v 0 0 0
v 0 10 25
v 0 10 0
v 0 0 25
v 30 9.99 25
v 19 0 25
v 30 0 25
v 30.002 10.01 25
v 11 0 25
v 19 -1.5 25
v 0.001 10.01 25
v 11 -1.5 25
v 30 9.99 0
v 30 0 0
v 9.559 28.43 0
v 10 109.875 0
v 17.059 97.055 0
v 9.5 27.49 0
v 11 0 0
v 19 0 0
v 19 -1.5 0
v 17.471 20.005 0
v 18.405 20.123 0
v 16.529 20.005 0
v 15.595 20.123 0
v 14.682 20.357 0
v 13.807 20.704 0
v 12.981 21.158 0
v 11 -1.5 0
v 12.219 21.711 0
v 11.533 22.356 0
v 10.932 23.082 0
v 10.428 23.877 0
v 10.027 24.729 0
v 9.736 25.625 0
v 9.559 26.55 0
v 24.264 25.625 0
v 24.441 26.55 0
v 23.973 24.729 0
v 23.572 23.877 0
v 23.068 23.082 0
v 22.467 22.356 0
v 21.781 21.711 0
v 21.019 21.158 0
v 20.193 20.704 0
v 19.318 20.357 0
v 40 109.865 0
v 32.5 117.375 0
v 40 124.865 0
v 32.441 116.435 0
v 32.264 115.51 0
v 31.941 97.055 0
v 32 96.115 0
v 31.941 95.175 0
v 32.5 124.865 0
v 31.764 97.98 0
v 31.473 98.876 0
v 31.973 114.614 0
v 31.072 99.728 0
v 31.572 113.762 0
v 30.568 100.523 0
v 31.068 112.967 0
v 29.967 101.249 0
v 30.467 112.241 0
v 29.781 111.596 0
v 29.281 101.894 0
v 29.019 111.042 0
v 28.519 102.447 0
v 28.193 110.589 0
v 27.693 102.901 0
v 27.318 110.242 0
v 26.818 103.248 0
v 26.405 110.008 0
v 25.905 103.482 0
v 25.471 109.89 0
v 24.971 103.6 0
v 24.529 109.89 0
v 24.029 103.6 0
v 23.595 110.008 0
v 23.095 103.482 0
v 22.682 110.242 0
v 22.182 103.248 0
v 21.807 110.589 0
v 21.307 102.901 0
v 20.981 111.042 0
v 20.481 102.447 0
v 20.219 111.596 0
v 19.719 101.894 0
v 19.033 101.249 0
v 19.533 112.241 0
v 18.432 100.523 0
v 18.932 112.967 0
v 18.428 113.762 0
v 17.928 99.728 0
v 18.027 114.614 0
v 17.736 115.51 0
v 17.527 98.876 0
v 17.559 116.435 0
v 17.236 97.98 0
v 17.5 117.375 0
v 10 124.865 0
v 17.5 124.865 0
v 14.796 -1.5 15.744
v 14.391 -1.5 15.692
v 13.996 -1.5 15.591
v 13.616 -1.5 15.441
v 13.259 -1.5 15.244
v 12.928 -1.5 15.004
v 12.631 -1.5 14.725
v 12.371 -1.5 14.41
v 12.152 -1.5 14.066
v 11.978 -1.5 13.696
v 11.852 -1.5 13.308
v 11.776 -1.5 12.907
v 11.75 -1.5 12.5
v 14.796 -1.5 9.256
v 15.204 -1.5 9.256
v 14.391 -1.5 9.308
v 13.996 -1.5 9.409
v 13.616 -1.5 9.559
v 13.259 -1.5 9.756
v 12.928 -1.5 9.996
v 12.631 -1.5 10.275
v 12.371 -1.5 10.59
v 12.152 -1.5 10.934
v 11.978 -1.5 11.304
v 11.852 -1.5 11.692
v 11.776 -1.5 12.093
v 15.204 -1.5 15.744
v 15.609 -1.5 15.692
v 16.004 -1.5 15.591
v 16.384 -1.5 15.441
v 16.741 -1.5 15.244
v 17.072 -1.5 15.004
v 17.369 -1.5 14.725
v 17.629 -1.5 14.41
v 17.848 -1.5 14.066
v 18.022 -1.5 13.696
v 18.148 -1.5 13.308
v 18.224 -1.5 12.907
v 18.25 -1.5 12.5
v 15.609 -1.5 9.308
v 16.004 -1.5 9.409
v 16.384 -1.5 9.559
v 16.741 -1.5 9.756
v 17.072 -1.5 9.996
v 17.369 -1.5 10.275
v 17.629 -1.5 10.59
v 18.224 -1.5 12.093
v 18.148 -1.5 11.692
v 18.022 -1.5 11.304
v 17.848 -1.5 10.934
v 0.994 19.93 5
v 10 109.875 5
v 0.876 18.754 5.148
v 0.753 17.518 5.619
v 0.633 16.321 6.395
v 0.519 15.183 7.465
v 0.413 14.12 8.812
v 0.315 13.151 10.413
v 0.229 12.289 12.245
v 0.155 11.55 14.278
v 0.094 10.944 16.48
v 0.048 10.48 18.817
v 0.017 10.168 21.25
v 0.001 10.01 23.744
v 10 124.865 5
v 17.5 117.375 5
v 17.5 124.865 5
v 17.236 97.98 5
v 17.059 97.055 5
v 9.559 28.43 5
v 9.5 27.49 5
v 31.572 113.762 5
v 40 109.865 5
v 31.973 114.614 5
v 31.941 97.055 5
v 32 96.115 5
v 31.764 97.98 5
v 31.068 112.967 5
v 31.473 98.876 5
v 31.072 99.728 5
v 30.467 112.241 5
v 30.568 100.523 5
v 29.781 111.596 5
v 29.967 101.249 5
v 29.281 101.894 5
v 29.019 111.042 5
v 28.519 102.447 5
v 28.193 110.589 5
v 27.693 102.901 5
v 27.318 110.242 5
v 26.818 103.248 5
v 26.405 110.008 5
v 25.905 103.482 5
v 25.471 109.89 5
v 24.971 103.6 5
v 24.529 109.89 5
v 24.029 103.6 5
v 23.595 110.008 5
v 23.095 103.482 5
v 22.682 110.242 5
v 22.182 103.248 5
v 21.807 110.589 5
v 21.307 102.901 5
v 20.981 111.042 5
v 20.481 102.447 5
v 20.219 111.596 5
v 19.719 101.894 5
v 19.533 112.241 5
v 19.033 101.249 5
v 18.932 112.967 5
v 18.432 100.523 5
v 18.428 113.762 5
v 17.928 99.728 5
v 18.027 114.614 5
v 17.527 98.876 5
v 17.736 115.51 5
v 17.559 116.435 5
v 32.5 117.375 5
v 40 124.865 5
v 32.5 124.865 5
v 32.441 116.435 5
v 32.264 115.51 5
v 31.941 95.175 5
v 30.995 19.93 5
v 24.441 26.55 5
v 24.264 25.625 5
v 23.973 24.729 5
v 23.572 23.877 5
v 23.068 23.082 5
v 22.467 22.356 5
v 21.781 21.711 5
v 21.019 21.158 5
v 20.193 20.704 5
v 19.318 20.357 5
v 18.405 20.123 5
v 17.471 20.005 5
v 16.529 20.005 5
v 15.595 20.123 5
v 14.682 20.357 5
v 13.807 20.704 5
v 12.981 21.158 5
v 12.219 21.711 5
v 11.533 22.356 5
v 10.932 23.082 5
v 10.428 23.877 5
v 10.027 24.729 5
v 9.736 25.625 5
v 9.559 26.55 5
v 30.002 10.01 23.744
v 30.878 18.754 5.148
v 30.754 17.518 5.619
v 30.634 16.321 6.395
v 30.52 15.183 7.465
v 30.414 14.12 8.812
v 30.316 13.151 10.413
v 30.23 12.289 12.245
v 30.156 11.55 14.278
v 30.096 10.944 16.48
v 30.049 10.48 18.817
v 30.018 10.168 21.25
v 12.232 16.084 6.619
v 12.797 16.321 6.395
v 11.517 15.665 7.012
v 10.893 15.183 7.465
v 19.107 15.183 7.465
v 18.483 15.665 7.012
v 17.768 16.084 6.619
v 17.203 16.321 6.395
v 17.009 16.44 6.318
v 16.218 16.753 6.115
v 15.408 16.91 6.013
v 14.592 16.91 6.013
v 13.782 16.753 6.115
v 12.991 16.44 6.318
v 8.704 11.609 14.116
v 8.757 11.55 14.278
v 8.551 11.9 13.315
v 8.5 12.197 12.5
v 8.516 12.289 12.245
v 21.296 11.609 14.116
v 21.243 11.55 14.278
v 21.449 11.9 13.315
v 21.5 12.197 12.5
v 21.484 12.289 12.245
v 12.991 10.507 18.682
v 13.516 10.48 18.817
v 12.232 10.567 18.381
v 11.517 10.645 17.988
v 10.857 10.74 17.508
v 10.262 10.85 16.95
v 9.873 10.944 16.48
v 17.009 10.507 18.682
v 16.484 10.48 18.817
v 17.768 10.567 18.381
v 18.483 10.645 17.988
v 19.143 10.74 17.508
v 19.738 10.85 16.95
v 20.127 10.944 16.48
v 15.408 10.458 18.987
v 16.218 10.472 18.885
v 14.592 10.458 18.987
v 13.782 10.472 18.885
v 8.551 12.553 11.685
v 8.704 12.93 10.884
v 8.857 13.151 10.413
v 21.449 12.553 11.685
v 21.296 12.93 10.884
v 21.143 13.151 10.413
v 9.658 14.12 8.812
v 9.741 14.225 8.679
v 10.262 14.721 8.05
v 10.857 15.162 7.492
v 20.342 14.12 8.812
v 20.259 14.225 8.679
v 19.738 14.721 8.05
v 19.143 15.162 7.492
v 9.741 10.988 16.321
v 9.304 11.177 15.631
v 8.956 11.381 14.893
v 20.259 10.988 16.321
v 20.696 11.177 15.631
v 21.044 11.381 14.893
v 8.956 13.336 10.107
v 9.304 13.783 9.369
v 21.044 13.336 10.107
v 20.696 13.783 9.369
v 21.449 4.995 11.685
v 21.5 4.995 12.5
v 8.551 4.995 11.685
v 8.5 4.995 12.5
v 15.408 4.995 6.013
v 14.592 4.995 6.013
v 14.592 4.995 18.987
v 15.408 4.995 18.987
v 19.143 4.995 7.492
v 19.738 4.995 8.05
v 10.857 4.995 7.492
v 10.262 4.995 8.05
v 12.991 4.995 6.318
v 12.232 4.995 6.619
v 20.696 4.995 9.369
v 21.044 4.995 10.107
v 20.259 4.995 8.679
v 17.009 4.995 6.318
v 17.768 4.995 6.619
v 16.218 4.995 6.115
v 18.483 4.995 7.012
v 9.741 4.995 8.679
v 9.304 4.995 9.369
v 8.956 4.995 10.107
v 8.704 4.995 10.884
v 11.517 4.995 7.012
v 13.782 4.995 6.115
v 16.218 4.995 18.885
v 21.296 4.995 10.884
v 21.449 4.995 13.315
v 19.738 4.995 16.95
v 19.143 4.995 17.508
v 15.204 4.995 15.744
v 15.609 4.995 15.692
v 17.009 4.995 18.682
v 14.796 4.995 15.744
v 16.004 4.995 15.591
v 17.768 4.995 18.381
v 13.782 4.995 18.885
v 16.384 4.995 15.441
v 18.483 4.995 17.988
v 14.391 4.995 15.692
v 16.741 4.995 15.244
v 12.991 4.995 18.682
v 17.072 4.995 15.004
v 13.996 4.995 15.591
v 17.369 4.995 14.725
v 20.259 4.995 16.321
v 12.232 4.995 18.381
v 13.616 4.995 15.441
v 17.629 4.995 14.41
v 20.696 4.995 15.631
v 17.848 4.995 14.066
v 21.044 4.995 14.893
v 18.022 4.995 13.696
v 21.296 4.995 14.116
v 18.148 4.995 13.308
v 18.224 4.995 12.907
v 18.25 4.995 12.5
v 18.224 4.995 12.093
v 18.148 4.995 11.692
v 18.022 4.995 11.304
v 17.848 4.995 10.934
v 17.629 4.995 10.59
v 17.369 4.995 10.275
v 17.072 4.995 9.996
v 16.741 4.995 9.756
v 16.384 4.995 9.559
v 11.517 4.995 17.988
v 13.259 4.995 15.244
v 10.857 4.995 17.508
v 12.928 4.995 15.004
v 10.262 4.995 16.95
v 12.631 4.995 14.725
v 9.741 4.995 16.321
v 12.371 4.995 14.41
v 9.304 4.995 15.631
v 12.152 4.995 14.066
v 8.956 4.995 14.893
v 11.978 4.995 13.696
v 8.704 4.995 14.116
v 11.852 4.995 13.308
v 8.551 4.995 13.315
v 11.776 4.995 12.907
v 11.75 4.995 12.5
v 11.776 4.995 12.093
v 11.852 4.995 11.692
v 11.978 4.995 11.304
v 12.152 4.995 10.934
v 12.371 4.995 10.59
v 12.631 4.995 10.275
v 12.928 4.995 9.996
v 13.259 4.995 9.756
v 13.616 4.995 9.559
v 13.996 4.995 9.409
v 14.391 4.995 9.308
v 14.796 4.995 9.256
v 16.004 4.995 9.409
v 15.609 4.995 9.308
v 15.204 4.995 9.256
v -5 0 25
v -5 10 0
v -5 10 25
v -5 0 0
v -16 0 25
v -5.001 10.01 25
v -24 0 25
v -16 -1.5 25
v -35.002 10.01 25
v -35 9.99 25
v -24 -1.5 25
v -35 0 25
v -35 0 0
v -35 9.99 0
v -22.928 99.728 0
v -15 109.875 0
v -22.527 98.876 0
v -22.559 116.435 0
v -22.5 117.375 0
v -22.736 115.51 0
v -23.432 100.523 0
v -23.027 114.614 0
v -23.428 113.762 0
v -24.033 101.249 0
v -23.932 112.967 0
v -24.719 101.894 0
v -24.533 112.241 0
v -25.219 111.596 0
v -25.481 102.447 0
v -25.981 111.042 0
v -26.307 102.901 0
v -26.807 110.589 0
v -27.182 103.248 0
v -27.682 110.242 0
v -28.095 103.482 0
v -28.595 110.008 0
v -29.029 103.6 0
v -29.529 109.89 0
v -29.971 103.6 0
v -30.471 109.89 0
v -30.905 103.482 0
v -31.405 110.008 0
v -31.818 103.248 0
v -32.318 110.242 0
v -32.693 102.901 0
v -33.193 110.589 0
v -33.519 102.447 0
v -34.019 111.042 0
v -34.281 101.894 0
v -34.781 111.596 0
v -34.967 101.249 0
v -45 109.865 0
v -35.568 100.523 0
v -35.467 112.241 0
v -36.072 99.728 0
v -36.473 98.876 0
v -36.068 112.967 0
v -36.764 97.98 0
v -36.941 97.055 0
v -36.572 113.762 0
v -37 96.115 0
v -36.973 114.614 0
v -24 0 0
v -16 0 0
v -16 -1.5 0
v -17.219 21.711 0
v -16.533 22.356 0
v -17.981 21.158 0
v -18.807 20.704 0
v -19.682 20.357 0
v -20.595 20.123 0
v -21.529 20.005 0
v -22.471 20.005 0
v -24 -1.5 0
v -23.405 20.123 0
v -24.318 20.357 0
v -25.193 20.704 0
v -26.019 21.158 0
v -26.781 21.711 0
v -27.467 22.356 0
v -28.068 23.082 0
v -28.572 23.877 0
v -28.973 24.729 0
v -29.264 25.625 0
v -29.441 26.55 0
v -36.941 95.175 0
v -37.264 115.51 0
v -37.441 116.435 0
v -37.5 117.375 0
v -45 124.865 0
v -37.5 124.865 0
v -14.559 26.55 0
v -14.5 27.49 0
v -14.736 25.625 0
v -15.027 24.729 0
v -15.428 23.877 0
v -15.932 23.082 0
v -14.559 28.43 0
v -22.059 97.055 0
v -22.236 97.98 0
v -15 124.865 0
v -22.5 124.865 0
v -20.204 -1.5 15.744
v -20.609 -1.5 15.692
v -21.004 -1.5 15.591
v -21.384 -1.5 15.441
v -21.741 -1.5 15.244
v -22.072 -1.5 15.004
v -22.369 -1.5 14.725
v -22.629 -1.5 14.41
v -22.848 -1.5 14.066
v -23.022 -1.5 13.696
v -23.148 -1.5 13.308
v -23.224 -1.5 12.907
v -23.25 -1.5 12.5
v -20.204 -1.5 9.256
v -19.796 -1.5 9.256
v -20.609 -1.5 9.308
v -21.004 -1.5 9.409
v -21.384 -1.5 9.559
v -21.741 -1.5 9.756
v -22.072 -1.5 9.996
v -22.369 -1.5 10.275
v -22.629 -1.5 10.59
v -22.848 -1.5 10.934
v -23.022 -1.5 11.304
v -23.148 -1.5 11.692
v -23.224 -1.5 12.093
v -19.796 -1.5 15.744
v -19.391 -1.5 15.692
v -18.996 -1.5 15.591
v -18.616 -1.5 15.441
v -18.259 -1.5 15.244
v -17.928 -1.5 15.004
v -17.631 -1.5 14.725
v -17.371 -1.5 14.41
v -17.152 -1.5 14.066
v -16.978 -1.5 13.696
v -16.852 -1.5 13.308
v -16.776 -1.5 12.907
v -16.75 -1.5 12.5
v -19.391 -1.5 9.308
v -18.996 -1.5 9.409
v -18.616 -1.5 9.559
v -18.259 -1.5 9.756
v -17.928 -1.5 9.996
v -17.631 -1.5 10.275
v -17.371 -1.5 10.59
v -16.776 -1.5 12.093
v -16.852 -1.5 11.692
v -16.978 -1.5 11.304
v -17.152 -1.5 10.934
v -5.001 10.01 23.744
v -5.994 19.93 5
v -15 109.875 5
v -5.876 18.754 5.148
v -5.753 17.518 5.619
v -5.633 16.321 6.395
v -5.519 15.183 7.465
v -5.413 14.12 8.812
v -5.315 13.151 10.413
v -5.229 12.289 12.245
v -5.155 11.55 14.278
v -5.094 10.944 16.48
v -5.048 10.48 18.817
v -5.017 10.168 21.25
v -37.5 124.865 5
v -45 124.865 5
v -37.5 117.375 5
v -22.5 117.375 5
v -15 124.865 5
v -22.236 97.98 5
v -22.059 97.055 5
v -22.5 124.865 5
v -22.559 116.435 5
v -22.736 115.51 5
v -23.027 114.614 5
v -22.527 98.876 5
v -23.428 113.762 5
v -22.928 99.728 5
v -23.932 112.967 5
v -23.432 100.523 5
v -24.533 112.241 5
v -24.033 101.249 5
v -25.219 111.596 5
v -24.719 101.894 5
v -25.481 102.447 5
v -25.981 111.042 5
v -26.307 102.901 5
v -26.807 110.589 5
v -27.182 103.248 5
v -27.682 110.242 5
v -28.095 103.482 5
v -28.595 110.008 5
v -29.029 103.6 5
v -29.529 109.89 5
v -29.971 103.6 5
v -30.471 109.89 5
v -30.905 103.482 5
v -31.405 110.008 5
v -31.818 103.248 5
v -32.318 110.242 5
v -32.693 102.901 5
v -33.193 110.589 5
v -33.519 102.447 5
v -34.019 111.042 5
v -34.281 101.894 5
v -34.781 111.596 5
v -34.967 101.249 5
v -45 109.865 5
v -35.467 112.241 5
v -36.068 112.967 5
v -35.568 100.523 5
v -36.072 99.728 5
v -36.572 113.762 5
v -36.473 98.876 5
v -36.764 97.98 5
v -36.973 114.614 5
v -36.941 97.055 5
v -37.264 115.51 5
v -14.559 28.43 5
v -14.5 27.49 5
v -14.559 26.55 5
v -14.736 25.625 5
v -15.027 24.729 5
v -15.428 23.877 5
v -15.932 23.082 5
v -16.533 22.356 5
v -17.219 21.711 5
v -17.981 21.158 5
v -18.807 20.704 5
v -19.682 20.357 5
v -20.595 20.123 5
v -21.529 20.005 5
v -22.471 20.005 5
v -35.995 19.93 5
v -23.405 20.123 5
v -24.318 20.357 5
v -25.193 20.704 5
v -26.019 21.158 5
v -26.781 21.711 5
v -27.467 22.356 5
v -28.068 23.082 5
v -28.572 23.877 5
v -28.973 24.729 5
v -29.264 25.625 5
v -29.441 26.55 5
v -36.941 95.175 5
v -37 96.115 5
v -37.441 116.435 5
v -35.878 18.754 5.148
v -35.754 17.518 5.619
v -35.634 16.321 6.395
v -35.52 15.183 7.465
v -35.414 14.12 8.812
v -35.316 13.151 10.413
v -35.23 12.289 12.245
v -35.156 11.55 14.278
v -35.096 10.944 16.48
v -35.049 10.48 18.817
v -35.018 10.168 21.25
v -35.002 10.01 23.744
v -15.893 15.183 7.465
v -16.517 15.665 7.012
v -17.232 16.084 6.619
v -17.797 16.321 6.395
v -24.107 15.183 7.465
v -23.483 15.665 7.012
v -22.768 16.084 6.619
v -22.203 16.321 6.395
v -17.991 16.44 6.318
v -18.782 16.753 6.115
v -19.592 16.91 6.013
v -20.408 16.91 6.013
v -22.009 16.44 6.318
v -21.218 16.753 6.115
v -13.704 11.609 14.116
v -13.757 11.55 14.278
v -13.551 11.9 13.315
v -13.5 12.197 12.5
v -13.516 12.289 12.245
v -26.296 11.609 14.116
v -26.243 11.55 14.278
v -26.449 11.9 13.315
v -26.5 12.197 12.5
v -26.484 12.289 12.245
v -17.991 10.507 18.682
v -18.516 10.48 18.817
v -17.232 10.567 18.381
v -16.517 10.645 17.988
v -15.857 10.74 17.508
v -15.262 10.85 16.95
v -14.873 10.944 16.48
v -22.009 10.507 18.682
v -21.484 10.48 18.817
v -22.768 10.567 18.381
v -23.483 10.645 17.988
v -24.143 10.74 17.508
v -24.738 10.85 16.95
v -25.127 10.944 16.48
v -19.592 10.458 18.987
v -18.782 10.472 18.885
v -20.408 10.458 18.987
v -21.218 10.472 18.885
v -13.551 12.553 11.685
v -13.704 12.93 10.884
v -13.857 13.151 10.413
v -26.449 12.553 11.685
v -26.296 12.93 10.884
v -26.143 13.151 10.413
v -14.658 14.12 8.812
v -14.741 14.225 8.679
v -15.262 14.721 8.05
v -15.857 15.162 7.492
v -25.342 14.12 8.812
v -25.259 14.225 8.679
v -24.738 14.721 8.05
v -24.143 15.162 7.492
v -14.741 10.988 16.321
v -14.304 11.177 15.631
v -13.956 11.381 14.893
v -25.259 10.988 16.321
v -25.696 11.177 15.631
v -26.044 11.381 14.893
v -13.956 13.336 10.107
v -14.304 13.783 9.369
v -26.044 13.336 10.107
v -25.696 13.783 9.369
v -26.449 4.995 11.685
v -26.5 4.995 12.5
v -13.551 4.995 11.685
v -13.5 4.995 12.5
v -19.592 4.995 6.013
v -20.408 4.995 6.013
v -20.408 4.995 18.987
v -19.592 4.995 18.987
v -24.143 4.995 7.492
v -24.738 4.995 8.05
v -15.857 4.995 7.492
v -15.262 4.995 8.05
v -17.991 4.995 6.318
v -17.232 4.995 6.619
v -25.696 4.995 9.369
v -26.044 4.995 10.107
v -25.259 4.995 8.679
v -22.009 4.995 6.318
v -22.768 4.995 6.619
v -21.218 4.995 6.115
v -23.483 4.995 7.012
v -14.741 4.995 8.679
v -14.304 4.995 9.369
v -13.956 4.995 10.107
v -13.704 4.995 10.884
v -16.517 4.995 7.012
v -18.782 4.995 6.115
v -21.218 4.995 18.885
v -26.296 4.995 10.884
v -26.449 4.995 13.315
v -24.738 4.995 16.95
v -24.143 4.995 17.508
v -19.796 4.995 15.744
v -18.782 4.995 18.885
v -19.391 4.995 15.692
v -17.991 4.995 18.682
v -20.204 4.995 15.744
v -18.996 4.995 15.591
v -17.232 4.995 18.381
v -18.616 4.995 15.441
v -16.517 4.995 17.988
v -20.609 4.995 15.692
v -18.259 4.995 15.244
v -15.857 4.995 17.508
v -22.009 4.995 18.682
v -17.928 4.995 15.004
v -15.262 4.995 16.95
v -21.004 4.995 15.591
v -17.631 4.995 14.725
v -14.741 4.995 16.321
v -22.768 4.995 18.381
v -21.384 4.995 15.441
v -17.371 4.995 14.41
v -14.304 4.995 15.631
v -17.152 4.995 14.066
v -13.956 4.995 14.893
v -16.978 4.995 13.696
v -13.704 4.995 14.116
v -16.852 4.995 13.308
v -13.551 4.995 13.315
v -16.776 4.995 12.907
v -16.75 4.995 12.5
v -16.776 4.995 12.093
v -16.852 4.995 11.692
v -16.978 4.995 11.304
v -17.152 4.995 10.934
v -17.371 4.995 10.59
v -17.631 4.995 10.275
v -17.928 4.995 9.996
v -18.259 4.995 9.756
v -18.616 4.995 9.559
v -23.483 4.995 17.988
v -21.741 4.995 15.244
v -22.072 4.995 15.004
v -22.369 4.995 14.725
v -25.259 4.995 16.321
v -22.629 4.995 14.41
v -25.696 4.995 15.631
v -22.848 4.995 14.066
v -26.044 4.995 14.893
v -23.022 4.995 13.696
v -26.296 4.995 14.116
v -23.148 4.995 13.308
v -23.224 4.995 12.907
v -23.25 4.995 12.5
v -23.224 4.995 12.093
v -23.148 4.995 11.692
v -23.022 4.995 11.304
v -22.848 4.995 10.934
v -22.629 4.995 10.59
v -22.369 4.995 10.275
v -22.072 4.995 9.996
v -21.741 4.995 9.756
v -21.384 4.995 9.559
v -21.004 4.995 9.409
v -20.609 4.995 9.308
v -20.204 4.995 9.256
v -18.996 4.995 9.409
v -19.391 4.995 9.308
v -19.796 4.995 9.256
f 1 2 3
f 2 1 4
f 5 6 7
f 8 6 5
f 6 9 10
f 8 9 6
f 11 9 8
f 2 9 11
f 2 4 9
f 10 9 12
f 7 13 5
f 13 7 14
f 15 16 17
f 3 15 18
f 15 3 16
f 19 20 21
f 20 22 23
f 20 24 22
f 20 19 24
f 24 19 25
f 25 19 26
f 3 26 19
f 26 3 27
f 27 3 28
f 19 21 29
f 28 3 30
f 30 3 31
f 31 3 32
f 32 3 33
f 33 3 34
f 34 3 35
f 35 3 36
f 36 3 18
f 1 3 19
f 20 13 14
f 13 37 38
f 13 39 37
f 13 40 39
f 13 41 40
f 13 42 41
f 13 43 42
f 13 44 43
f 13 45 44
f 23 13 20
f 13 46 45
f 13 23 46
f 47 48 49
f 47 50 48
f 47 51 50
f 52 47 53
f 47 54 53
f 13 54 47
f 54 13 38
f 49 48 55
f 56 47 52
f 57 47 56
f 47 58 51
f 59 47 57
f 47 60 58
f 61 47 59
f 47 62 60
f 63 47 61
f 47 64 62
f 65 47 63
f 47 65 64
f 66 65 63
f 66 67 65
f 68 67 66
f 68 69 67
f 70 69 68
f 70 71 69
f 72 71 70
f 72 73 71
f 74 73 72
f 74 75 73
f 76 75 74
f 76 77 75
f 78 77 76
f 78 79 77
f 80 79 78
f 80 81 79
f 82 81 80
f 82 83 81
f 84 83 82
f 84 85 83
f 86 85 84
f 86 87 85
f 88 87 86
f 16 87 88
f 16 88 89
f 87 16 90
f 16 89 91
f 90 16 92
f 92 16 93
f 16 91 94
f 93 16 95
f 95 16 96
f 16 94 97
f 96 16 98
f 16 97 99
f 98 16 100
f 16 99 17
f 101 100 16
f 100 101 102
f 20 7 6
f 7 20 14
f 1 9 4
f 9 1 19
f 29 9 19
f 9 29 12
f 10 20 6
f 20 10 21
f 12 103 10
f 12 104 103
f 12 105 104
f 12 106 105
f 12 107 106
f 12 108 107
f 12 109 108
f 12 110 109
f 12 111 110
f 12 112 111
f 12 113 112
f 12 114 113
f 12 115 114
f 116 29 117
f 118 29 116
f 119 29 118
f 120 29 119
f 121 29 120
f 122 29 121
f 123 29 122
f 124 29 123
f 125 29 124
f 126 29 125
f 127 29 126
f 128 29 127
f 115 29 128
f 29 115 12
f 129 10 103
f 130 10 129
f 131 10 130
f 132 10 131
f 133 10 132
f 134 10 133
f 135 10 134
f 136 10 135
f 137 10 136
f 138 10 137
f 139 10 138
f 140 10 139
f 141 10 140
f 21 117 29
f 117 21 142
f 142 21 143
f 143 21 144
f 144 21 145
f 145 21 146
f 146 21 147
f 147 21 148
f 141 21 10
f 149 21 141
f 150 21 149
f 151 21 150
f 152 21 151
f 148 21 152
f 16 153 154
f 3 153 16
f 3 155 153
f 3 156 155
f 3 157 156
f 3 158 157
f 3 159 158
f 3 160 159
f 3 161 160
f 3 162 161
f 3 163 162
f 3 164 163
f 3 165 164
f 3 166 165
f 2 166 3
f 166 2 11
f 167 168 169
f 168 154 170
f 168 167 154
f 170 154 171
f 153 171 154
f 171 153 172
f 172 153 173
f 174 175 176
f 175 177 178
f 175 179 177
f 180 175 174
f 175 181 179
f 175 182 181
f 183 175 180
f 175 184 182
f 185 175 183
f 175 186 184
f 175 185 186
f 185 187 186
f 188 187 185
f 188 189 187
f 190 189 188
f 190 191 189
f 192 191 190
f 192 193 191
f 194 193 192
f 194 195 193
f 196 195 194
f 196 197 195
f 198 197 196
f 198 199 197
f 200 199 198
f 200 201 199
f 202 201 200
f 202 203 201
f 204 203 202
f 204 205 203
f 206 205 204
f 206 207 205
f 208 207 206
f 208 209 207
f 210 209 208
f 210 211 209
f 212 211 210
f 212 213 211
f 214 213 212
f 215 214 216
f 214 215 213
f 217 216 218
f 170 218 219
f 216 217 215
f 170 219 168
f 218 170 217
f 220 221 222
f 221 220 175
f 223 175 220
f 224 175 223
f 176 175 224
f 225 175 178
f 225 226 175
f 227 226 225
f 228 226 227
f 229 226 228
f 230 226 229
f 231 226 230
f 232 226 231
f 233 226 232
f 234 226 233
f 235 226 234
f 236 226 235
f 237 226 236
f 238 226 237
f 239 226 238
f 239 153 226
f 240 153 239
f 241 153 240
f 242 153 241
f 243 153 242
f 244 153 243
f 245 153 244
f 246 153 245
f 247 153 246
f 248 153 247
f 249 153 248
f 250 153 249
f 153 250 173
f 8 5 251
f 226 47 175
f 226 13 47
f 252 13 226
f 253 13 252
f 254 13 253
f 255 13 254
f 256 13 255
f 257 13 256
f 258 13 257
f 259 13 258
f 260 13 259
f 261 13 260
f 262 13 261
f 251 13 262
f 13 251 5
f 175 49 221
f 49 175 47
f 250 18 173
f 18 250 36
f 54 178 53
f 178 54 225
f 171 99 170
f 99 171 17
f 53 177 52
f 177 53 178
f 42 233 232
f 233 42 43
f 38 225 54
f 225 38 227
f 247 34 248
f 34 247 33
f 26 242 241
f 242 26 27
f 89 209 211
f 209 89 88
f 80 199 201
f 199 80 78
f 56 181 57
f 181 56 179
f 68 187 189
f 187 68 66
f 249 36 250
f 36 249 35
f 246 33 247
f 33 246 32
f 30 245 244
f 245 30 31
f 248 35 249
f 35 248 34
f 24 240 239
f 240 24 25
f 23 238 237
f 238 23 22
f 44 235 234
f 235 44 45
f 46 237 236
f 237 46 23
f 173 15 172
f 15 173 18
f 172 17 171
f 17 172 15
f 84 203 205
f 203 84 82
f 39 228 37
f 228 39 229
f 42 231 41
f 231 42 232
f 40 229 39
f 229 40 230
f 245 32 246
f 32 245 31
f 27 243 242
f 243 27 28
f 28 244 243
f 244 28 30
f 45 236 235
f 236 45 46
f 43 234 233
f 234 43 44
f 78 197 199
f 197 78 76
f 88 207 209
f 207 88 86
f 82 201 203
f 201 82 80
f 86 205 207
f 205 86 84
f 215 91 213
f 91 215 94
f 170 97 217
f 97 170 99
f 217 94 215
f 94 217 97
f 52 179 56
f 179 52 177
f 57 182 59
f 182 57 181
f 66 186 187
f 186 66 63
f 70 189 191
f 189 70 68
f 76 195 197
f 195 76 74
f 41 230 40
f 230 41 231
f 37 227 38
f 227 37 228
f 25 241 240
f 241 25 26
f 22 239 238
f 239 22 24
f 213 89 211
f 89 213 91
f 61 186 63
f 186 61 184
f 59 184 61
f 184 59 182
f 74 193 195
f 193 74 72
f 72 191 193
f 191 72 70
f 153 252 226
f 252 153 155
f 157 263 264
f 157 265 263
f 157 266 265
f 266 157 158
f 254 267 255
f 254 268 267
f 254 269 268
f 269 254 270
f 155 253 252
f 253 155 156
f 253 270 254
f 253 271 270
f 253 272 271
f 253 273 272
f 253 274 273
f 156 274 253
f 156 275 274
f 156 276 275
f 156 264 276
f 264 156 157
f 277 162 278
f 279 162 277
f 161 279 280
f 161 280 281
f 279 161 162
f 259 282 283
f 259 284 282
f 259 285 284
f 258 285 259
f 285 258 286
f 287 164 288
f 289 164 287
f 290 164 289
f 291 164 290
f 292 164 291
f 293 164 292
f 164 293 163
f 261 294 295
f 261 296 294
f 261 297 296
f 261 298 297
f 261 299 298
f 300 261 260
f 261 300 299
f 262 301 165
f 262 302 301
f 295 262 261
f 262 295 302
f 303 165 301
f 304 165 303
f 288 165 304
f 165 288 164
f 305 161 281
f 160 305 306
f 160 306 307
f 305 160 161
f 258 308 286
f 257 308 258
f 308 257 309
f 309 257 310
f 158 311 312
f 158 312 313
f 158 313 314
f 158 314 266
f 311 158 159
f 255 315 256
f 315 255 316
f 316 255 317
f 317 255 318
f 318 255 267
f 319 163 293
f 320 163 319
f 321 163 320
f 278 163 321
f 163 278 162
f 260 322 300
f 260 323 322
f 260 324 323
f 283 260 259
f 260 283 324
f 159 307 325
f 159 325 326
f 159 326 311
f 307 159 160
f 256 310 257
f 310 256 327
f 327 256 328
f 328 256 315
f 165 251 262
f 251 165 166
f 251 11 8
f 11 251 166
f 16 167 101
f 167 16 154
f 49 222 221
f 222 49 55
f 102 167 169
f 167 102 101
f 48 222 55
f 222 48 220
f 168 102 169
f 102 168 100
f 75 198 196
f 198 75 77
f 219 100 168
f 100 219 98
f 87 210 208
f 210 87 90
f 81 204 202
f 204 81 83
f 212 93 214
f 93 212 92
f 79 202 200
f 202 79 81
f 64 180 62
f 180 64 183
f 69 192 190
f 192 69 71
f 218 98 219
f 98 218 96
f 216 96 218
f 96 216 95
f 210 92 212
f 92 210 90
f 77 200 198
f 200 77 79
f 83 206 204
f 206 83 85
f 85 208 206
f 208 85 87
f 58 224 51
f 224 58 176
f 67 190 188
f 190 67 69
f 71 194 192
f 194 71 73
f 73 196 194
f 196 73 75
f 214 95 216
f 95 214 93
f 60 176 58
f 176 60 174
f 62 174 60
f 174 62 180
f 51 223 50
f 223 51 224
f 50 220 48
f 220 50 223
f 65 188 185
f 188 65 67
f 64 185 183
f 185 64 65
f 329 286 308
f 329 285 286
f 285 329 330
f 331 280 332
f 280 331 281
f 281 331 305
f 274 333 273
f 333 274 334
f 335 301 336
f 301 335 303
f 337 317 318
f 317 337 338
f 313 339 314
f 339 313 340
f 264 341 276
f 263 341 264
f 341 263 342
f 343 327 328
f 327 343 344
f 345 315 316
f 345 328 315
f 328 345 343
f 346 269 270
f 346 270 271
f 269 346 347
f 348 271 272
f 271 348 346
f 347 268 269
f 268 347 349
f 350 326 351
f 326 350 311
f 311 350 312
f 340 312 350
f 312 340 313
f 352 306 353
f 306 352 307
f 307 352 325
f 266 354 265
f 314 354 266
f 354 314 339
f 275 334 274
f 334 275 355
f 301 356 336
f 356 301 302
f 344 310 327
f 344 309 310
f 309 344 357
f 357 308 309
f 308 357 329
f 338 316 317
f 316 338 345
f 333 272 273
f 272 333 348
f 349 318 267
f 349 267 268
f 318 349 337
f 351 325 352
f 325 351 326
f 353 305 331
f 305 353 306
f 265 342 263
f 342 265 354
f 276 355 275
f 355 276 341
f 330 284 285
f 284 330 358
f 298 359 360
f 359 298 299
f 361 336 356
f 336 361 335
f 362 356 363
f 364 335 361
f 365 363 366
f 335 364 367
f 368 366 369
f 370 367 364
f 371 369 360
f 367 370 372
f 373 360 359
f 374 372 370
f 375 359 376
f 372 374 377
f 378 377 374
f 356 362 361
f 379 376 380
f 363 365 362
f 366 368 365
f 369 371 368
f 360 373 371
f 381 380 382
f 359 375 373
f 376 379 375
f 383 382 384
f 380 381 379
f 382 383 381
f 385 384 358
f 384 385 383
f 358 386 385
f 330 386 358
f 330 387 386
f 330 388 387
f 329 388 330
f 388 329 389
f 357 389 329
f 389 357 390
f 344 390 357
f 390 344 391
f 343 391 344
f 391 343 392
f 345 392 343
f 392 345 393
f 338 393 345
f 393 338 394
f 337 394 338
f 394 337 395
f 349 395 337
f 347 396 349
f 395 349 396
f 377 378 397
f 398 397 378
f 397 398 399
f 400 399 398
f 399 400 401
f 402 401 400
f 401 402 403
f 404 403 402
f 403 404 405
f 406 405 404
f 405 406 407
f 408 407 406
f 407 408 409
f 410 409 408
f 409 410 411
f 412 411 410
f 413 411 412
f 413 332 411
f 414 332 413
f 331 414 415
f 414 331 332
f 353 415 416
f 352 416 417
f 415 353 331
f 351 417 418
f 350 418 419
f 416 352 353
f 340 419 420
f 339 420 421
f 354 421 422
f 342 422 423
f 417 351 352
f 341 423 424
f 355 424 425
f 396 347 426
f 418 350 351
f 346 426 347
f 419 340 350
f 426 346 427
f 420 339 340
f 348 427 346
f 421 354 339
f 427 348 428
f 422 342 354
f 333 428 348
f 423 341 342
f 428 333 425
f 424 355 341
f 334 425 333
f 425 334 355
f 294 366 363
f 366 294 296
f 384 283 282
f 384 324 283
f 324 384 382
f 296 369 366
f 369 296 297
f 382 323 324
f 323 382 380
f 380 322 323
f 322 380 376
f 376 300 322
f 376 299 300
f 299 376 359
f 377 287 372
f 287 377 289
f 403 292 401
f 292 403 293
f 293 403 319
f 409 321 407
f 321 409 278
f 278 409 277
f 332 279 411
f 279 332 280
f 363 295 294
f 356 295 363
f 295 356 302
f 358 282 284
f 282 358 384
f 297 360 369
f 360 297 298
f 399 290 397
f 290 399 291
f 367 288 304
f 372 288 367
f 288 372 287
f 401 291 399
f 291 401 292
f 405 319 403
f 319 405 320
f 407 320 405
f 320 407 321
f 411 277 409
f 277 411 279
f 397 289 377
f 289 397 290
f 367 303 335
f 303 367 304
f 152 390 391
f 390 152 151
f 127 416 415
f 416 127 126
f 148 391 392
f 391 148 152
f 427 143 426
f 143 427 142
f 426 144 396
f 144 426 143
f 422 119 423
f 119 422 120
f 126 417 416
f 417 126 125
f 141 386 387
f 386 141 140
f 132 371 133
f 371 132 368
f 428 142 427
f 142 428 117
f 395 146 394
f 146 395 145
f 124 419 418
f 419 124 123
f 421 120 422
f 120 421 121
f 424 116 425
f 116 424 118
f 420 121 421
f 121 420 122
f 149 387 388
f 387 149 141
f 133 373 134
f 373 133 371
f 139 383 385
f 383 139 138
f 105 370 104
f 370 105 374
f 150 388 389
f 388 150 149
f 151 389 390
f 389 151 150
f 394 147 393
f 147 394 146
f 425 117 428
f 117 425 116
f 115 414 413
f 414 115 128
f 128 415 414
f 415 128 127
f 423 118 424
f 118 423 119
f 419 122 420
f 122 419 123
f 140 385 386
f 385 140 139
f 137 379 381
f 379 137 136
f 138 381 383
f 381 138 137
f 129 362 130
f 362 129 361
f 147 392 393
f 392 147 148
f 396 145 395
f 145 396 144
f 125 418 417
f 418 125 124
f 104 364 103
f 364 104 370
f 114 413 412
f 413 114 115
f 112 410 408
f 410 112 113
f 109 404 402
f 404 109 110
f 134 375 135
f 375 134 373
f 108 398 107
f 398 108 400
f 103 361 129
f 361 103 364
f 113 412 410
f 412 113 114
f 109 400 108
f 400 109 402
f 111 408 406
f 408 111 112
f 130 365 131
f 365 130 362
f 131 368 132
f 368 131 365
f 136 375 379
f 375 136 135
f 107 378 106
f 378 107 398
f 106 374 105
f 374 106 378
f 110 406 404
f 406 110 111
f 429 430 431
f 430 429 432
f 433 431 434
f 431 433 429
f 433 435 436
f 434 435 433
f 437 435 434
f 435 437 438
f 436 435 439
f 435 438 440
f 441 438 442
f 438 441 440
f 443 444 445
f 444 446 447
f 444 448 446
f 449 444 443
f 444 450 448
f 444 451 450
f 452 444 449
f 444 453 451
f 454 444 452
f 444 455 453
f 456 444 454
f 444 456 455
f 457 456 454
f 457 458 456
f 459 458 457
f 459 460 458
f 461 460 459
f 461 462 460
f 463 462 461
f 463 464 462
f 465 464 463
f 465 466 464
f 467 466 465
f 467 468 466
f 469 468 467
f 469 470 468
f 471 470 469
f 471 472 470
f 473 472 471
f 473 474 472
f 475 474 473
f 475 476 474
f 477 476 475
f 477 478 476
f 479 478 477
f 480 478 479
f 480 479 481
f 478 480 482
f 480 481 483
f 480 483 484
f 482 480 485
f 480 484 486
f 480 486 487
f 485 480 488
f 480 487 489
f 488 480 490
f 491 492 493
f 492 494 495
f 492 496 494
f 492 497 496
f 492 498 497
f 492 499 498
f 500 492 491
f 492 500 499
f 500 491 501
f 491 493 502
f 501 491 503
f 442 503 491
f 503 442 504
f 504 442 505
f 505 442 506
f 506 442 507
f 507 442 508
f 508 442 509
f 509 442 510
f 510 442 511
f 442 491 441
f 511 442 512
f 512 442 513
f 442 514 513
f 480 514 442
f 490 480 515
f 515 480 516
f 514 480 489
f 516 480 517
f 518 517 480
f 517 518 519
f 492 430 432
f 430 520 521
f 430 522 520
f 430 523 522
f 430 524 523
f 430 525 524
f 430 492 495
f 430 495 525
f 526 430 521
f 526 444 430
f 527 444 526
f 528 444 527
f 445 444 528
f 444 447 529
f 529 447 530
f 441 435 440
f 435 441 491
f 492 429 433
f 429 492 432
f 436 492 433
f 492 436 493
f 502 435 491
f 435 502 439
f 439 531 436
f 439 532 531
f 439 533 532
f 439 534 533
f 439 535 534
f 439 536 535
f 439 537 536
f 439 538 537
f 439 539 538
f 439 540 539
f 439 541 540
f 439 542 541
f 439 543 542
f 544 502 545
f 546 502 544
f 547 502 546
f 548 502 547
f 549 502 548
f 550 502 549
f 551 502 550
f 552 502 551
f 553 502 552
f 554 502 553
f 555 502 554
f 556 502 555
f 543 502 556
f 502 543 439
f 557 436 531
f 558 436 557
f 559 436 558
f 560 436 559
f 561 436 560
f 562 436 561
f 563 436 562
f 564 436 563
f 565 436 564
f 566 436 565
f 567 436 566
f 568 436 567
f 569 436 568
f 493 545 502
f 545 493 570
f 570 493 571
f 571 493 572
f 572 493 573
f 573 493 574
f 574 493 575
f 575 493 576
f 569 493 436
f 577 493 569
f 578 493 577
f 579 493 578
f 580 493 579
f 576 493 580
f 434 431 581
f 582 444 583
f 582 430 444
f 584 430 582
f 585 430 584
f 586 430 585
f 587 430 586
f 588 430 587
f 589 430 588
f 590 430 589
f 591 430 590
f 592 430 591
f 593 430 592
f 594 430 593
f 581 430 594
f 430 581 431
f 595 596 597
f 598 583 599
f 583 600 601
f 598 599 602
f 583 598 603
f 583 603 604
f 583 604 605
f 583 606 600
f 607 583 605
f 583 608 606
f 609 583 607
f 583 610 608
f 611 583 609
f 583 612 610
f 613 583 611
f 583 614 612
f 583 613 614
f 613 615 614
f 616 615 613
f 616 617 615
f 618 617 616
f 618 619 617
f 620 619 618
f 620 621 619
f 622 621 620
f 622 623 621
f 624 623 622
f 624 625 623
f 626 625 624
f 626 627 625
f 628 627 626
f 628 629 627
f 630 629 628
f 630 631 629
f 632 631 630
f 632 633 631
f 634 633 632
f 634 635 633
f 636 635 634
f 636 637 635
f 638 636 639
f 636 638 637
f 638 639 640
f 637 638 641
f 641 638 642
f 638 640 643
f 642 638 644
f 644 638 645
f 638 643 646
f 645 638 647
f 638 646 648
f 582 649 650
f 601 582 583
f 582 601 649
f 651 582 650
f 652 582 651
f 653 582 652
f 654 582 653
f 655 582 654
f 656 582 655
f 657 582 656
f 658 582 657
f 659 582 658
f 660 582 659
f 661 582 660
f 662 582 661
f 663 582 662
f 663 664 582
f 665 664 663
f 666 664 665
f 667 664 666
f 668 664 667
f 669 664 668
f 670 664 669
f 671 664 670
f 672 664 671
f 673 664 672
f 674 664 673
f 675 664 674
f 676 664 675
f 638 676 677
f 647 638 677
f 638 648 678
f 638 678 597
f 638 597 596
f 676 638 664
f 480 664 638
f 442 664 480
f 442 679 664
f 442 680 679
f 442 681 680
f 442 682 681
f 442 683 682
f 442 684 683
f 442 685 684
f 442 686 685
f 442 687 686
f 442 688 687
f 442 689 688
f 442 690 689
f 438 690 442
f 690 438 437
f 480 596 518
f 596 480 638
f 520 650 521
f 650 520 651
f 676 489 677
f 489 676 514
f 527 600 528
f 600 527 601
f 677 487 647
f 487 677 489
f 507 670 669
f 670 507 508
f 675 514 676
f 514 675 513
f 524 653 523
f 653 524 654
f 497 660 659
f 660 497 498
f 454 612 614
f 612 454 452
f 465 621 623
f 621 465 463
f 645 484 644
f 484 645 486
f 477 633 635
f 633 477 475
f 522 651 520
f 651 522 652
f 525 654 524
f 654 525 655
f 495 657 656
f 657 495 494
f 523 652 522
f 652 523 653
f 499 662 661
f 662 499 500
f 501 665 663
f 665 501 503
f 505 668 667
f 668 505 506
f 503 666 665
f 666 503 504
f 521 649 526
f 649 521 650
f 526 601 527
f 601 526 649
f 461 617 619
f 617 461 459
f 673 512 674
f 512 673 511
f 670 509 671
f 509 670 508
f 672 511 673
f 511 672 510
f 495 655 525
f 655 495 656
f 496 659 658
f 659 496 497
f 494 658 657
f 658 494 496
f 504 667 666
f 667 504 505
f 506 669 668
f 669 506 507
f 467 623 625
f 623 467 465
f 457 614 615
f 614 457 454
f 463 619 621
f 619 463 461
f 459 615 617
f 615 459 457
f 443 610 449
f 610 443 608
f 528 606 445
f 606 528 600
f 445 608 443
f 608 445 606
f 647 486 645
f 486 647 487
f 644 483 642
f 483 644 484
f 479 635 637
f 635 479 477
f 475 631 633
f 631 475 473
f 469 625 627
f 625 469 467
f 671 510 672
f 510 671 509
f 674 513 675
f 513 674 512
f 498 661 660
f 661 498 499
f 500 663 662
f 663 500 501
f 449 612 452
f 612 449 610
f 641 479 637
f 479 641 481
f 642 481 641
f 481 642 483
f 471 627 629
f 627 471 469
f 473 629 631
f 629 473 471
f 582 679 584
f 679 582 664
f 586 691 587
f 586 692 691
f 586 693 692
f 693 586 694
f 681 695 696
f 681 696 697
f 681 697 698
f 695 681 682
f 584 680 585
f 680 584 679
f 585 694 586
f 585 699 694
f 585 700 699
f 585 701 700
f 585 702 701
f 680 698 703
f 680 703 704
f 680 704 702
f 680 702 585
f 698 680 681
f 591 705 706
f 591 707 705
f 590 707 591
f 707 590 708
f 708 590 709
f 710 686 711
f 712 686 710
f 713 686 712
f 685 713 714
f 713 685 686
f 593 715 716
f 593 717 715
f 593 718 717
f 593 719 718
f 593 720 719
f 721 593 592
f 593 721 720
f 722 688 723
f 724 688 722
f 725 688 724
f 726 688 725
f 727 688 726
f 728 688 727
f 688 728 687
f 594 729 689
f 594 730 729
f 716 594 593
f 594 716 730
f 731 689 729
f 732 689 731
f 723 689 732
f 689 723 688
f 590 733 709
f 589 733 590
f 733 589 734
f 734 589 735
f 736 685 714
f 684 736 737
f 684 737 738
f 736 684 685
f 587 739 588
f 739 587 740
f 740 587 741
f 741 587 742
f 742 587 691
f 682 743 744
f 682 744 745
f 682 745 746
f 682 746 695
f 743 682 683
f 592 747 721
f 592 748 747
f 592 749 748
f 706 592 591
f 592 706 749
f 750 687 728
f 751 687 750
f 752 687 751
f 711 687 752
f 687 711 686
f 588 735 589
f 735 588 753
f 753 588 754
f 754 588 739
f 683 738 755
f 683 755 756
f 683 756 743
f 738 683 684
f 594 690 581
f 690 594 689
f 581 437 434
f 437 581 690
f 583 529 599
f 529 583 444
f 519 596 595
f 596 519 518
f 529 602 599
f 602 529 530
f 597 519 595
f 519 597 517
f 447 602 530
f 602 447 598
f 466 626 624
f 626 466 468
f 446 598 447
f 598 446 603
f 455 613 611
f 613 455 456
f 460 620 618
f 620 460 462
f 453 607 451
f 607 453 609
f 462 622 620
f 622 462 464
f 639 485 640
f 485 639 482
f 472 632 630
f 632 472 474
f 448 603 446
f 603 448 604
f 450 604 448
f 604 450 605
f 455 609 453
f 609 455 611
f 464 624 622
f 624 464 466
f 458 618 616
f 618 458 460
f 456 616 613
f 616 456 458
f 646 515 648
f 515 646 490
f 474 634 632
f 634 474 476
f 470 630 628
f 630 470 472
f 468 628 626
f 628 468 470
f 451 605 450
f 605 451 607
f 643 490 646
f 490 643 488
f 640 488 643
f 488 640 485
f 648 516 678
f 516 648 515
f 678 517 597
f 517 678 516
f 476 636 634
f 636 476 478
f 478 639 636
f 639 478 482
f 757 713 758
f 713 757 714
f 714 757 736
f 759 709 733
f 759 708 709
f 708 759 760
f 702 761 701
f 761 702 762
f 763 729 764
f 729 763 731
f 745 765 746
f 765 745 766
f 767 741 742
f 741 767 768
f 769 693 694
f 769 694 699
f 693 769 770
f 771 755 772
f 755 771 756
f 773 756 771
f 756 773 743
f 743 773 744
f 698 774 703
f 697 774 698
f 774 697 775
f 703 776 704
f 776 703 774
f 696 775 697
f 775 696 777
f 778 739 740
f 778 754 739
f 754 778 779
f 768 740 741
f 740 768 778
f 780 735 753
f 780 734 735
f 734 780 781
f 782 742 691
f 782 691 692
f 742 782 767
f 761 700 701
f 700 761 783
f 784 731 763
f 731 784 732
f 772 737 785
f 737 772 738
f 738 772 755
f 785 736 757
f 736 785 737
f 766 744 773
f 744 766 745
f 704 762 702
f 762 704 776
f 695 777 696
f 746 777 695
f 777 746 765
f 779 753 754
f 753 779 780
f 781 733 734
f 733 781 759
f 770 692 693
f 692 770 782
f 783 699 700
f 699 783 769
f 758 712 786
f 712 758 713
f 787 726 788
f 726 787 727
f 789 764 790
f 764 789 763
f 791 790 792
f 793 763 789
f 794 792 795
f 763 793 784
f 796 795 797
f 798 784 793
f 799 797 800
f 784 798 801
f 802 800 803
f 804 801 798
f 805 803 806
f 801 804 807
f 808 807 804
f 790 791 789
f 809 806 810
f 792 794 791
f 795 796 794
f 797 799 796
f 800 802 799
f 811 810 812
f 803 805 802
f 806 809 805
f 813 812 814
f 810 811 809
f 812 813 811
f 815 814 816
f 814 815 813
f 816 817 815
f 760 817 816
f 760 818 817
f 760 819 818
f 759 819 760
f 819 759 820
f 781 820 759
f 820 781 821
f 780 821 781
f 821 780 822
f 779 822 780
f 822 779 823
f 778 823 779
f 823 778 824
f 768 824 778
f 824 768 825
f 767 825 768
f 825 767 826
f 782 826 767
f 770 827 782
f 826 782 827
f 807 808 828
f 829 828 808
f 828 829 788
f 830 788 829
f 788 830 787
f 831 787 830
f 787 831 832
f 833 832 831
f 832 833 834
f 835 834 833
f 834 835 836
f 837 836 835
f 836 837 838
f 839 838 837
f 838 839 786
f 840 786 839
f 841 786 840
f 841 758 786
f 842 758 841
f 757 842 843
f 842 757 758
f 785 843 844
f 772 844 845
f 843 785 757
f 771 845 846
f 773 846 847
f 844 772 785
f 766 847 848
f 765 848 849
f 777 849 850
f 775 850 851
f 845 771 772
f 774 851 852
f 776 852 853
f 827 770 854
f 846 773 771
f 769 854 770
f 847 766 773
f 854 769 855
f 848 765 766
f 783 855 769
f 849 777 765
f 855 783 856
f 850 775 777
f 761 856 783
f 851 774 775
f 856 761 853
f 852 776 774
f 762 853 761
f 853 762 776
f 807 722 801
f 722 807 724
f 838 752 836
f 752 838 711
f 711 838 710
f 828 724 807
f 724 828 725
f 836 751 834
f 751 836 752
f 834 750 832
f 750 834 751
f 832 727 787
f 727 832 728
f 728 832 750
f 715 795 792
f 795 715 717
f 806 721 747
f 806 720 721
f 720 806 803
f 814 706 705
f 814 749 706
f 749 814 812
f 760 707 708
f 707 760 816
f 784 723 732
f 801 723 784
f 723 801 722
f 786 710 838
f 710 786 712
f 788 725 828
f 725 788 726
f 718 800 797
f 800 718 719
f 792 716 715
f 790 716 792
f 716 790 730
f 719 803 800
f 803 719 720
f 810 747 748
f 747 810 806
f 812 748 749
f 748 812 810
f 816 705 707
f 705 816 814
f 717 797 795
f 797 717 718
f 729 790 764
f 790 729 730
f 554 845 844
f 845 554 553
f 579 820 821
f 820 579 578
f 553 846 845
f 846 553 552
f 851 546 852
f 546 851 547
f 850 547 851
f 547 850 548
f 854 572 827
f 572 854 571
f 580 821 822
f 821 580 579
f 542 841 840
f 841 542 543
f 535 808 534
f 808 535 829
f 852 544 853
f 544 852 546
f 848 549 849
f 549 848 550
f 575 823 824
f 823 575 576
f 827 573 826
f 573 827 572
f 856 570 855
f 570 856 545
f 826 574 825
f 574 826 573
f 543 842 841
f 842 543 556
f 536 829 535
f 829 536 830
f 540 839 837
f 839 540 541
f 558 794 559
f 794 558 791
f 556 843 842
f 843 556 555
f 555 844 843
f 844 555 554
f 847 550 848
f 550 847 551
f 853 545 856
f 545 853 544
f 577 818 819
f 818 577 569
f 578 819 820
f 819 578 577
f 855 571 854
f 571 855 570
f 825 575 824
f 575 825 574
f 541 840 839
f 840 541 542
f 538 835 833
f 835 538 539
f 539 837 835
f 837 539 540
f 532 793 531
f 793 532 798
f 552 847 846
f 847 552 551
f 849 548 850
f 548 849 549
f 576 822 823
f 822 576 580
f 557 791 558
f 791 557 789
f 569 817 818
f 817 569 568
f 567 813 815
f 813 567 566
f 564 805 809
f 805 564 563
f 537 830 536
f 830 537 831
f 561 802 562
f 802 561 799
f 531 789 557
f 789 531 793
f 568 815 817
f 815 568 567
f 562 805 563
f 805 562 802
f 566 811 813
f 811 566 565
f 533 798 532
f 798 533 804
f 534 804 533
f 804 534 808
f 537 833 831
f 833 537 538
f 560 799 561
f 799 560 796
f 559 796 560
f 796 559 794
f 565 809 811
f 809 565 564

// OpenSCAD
// file: ../configuration.scad
// Vyska vrstvy pro tisknuti dilu [mm]
layer_height = 0.25; //Slic3r->Print Settings->Layers and perimeters->Layer height

// Rezerva prumeru hlavy sroubu [mm]
spare = 1;
// Prumer hlavy M6 sroubu (pricte se rezerva) [mm]
M6_head_diameter = 10.6+spare;
//M6_head_diameter = 12+spare;

// Vyska hlavy M6 sroubu (dulezite pro zapusteni hlavy sroubu do plastu) [mm]
M6_head_height = 3.6;
//M6_head_height = 4.5;

//Prumery sroubu a tyci
M8_smooth_rod_diameter = 8.1;
M8_smooth_rod_diameter_catch = 8.2;
M6_diameter = 6.2;
M6_diamater_horizontal = 6.5;
M3_diameter = 3.2;
M3_diameter_horizontal = 3.2;

//Prumery matic
M3_nut_diameter = 6.8;
M3_nut_diameter_horizontal = 6.8;

//ALU profile parameters
ALU_cut_width = 7.9;
ALU_cut_width_horizontal = 7.9;

// Delka motoru (ovlivni dily pro osy Z a Y)
//SX17-1003LQFE (doporuceno hlavne na osu Z)
//motor_length = 29.5;
//SX17-1003 (doporuceno hlavne na osu Z)
motor_length = 34;
//SX17-1005
//motor_length = 40;
//SX17-0905 - zde je jiz problem s velkou vyskou motoru na ose Z - musi se upravit endstop-holder
//motor_length = 48;

// Sirka vytlacovaneho materialu [mm]
extrusion_width = 0.66; //Slic3r->Print Settings->Advanced->Default extrusion width

/// Vyberte typ remenu ******************************************************

// GT2 
//belt_tooth_distance = 2;
//belt_tooth_ratio = 0.5;

// T2.5
belt_tooth_distance = 2.5;
belt_tooth_ratio = 0.68;
// main file
// RebeliX
//
// spool-holder
// GNU GPL v3
// Martin Neruda <neruda@reprap4u.cz>
// http://www.reprap4u.cz

include <../configuration.scad>
$fn=50;
frame_width = 30;
frame_trail = 8;
frame_depth = 1.5;

axe_diameter = 15;
spool_diameter = 200;
base_width = 25;
base_height = 10;
base_extra = 10;

screw_head = 13;
screw_body = 6.5;
screw_depth = 5;

printer_back = 110;
epsilon = 0.01;
width = 5;

/*
[hidden]
*/
shift_back = printer_back - spool_diameter/2;
shift_up = sqrt(pow(spool_diameter/2,2)-pow(shift_back-frame_width/2,2));

module screw(){
  rotate([-90,0,0]){
    translate([0,0,shift_up/2])
    cylinder(r=screw_head/2,h=shift_up+epsilon,center=true);
    translate([0,0,-shift_up/2])
    cylinder(r=screw_body/2,h=shift_up,center=true);
  }
}


module base(){
    cube([frame_width,base_height,base_width]);
    translate([frame_width/2-frame_trail/2,-frame_depth,0])
    cube([frame_trail,frame_depth+epsilon,base_width]);
}

module extra(){
  r=(base_width-width);
  difference(){
    hull(){
      cube([frame_width,epsilon,base_width-width]);
      translate([shift_back,shift_up,0])
      cube([frame_width,epsilon,base_width-width]);
    }
    hull(){
      resize([0,base_extra*2,0])
      translate([frame_width/2,r+epsilon,r])
      rotate([0,90,0])
      cylinder(r=r+epsilon,h=frame_width*2,center=true);
      translate([shift_back,shift_up+3*epsilon,0])
      cube([frame_width,epsilon,base_width-width]);
    }
  }
}
module spool(){
  spool_w = 65;
  color("blue")
   translate([
      frame_width/2+shift_back,
      base_height+shift_up+axe_diameter/2,
      -spool_w/2-2*width/3
    ]){
      cylinder(r=spool_diameter/2,h=spool_w,center = true);
      cylinder(r=axe_diameter/2,h=spool_w+4*width,center = true);
   }
}
%spool();

module stand(){
  difference(){
    hull(){
      cube([frame_width,epsilon,width]);
      translate([shift_back,shift_up,0])
      cube([frame_width,epsilon,width]);
    }
    hull(){
       translate([frame_width/2+2,base_extra+axe_diameter/2,-epsilon])
       cylinder(r=axe_diameter/2,h=width+2*epsilon);
        translate([shift_back+axe_diameter/2+7,shift_up-axe_diameter/2-(frame_width-axe_diameter/2)/2+5,-epsilon])
       cylinder(r=axe_diameter/2,h=width+2*epsilon);
    }
  }
}

module top(){
  difference(){
    cube([frame_width,axe_diameter,width]);
    hull(){
      translate([frame_width/2,axe_diameter/2+epsilon,width/2])
      cylinder(r=axe_diameter/2,h=width+2*epsilon, center = true);
      translate([frame_width/2,axe_diameter+epsilon,width/2])
      cylinder(r=axe_diameter/2,h=width+2*epsilon, center = true);
    }
  }
}

module body(){
  difference(){
    union(){
      base();
      translate([0,base_height-epsilon,0]){
        stand();
        translate([0,0,width])
        extra();
      }
      translate([shift_back,base_height+shift_up-epsilon,0])
      top();
    }
    translate([frame_width/2,screw_depth,base_width/2])
    screw();
  }
  
}

translate([5,0,0]);
body();

mirror([1,0,0])
translate([5,0,0])
body();
